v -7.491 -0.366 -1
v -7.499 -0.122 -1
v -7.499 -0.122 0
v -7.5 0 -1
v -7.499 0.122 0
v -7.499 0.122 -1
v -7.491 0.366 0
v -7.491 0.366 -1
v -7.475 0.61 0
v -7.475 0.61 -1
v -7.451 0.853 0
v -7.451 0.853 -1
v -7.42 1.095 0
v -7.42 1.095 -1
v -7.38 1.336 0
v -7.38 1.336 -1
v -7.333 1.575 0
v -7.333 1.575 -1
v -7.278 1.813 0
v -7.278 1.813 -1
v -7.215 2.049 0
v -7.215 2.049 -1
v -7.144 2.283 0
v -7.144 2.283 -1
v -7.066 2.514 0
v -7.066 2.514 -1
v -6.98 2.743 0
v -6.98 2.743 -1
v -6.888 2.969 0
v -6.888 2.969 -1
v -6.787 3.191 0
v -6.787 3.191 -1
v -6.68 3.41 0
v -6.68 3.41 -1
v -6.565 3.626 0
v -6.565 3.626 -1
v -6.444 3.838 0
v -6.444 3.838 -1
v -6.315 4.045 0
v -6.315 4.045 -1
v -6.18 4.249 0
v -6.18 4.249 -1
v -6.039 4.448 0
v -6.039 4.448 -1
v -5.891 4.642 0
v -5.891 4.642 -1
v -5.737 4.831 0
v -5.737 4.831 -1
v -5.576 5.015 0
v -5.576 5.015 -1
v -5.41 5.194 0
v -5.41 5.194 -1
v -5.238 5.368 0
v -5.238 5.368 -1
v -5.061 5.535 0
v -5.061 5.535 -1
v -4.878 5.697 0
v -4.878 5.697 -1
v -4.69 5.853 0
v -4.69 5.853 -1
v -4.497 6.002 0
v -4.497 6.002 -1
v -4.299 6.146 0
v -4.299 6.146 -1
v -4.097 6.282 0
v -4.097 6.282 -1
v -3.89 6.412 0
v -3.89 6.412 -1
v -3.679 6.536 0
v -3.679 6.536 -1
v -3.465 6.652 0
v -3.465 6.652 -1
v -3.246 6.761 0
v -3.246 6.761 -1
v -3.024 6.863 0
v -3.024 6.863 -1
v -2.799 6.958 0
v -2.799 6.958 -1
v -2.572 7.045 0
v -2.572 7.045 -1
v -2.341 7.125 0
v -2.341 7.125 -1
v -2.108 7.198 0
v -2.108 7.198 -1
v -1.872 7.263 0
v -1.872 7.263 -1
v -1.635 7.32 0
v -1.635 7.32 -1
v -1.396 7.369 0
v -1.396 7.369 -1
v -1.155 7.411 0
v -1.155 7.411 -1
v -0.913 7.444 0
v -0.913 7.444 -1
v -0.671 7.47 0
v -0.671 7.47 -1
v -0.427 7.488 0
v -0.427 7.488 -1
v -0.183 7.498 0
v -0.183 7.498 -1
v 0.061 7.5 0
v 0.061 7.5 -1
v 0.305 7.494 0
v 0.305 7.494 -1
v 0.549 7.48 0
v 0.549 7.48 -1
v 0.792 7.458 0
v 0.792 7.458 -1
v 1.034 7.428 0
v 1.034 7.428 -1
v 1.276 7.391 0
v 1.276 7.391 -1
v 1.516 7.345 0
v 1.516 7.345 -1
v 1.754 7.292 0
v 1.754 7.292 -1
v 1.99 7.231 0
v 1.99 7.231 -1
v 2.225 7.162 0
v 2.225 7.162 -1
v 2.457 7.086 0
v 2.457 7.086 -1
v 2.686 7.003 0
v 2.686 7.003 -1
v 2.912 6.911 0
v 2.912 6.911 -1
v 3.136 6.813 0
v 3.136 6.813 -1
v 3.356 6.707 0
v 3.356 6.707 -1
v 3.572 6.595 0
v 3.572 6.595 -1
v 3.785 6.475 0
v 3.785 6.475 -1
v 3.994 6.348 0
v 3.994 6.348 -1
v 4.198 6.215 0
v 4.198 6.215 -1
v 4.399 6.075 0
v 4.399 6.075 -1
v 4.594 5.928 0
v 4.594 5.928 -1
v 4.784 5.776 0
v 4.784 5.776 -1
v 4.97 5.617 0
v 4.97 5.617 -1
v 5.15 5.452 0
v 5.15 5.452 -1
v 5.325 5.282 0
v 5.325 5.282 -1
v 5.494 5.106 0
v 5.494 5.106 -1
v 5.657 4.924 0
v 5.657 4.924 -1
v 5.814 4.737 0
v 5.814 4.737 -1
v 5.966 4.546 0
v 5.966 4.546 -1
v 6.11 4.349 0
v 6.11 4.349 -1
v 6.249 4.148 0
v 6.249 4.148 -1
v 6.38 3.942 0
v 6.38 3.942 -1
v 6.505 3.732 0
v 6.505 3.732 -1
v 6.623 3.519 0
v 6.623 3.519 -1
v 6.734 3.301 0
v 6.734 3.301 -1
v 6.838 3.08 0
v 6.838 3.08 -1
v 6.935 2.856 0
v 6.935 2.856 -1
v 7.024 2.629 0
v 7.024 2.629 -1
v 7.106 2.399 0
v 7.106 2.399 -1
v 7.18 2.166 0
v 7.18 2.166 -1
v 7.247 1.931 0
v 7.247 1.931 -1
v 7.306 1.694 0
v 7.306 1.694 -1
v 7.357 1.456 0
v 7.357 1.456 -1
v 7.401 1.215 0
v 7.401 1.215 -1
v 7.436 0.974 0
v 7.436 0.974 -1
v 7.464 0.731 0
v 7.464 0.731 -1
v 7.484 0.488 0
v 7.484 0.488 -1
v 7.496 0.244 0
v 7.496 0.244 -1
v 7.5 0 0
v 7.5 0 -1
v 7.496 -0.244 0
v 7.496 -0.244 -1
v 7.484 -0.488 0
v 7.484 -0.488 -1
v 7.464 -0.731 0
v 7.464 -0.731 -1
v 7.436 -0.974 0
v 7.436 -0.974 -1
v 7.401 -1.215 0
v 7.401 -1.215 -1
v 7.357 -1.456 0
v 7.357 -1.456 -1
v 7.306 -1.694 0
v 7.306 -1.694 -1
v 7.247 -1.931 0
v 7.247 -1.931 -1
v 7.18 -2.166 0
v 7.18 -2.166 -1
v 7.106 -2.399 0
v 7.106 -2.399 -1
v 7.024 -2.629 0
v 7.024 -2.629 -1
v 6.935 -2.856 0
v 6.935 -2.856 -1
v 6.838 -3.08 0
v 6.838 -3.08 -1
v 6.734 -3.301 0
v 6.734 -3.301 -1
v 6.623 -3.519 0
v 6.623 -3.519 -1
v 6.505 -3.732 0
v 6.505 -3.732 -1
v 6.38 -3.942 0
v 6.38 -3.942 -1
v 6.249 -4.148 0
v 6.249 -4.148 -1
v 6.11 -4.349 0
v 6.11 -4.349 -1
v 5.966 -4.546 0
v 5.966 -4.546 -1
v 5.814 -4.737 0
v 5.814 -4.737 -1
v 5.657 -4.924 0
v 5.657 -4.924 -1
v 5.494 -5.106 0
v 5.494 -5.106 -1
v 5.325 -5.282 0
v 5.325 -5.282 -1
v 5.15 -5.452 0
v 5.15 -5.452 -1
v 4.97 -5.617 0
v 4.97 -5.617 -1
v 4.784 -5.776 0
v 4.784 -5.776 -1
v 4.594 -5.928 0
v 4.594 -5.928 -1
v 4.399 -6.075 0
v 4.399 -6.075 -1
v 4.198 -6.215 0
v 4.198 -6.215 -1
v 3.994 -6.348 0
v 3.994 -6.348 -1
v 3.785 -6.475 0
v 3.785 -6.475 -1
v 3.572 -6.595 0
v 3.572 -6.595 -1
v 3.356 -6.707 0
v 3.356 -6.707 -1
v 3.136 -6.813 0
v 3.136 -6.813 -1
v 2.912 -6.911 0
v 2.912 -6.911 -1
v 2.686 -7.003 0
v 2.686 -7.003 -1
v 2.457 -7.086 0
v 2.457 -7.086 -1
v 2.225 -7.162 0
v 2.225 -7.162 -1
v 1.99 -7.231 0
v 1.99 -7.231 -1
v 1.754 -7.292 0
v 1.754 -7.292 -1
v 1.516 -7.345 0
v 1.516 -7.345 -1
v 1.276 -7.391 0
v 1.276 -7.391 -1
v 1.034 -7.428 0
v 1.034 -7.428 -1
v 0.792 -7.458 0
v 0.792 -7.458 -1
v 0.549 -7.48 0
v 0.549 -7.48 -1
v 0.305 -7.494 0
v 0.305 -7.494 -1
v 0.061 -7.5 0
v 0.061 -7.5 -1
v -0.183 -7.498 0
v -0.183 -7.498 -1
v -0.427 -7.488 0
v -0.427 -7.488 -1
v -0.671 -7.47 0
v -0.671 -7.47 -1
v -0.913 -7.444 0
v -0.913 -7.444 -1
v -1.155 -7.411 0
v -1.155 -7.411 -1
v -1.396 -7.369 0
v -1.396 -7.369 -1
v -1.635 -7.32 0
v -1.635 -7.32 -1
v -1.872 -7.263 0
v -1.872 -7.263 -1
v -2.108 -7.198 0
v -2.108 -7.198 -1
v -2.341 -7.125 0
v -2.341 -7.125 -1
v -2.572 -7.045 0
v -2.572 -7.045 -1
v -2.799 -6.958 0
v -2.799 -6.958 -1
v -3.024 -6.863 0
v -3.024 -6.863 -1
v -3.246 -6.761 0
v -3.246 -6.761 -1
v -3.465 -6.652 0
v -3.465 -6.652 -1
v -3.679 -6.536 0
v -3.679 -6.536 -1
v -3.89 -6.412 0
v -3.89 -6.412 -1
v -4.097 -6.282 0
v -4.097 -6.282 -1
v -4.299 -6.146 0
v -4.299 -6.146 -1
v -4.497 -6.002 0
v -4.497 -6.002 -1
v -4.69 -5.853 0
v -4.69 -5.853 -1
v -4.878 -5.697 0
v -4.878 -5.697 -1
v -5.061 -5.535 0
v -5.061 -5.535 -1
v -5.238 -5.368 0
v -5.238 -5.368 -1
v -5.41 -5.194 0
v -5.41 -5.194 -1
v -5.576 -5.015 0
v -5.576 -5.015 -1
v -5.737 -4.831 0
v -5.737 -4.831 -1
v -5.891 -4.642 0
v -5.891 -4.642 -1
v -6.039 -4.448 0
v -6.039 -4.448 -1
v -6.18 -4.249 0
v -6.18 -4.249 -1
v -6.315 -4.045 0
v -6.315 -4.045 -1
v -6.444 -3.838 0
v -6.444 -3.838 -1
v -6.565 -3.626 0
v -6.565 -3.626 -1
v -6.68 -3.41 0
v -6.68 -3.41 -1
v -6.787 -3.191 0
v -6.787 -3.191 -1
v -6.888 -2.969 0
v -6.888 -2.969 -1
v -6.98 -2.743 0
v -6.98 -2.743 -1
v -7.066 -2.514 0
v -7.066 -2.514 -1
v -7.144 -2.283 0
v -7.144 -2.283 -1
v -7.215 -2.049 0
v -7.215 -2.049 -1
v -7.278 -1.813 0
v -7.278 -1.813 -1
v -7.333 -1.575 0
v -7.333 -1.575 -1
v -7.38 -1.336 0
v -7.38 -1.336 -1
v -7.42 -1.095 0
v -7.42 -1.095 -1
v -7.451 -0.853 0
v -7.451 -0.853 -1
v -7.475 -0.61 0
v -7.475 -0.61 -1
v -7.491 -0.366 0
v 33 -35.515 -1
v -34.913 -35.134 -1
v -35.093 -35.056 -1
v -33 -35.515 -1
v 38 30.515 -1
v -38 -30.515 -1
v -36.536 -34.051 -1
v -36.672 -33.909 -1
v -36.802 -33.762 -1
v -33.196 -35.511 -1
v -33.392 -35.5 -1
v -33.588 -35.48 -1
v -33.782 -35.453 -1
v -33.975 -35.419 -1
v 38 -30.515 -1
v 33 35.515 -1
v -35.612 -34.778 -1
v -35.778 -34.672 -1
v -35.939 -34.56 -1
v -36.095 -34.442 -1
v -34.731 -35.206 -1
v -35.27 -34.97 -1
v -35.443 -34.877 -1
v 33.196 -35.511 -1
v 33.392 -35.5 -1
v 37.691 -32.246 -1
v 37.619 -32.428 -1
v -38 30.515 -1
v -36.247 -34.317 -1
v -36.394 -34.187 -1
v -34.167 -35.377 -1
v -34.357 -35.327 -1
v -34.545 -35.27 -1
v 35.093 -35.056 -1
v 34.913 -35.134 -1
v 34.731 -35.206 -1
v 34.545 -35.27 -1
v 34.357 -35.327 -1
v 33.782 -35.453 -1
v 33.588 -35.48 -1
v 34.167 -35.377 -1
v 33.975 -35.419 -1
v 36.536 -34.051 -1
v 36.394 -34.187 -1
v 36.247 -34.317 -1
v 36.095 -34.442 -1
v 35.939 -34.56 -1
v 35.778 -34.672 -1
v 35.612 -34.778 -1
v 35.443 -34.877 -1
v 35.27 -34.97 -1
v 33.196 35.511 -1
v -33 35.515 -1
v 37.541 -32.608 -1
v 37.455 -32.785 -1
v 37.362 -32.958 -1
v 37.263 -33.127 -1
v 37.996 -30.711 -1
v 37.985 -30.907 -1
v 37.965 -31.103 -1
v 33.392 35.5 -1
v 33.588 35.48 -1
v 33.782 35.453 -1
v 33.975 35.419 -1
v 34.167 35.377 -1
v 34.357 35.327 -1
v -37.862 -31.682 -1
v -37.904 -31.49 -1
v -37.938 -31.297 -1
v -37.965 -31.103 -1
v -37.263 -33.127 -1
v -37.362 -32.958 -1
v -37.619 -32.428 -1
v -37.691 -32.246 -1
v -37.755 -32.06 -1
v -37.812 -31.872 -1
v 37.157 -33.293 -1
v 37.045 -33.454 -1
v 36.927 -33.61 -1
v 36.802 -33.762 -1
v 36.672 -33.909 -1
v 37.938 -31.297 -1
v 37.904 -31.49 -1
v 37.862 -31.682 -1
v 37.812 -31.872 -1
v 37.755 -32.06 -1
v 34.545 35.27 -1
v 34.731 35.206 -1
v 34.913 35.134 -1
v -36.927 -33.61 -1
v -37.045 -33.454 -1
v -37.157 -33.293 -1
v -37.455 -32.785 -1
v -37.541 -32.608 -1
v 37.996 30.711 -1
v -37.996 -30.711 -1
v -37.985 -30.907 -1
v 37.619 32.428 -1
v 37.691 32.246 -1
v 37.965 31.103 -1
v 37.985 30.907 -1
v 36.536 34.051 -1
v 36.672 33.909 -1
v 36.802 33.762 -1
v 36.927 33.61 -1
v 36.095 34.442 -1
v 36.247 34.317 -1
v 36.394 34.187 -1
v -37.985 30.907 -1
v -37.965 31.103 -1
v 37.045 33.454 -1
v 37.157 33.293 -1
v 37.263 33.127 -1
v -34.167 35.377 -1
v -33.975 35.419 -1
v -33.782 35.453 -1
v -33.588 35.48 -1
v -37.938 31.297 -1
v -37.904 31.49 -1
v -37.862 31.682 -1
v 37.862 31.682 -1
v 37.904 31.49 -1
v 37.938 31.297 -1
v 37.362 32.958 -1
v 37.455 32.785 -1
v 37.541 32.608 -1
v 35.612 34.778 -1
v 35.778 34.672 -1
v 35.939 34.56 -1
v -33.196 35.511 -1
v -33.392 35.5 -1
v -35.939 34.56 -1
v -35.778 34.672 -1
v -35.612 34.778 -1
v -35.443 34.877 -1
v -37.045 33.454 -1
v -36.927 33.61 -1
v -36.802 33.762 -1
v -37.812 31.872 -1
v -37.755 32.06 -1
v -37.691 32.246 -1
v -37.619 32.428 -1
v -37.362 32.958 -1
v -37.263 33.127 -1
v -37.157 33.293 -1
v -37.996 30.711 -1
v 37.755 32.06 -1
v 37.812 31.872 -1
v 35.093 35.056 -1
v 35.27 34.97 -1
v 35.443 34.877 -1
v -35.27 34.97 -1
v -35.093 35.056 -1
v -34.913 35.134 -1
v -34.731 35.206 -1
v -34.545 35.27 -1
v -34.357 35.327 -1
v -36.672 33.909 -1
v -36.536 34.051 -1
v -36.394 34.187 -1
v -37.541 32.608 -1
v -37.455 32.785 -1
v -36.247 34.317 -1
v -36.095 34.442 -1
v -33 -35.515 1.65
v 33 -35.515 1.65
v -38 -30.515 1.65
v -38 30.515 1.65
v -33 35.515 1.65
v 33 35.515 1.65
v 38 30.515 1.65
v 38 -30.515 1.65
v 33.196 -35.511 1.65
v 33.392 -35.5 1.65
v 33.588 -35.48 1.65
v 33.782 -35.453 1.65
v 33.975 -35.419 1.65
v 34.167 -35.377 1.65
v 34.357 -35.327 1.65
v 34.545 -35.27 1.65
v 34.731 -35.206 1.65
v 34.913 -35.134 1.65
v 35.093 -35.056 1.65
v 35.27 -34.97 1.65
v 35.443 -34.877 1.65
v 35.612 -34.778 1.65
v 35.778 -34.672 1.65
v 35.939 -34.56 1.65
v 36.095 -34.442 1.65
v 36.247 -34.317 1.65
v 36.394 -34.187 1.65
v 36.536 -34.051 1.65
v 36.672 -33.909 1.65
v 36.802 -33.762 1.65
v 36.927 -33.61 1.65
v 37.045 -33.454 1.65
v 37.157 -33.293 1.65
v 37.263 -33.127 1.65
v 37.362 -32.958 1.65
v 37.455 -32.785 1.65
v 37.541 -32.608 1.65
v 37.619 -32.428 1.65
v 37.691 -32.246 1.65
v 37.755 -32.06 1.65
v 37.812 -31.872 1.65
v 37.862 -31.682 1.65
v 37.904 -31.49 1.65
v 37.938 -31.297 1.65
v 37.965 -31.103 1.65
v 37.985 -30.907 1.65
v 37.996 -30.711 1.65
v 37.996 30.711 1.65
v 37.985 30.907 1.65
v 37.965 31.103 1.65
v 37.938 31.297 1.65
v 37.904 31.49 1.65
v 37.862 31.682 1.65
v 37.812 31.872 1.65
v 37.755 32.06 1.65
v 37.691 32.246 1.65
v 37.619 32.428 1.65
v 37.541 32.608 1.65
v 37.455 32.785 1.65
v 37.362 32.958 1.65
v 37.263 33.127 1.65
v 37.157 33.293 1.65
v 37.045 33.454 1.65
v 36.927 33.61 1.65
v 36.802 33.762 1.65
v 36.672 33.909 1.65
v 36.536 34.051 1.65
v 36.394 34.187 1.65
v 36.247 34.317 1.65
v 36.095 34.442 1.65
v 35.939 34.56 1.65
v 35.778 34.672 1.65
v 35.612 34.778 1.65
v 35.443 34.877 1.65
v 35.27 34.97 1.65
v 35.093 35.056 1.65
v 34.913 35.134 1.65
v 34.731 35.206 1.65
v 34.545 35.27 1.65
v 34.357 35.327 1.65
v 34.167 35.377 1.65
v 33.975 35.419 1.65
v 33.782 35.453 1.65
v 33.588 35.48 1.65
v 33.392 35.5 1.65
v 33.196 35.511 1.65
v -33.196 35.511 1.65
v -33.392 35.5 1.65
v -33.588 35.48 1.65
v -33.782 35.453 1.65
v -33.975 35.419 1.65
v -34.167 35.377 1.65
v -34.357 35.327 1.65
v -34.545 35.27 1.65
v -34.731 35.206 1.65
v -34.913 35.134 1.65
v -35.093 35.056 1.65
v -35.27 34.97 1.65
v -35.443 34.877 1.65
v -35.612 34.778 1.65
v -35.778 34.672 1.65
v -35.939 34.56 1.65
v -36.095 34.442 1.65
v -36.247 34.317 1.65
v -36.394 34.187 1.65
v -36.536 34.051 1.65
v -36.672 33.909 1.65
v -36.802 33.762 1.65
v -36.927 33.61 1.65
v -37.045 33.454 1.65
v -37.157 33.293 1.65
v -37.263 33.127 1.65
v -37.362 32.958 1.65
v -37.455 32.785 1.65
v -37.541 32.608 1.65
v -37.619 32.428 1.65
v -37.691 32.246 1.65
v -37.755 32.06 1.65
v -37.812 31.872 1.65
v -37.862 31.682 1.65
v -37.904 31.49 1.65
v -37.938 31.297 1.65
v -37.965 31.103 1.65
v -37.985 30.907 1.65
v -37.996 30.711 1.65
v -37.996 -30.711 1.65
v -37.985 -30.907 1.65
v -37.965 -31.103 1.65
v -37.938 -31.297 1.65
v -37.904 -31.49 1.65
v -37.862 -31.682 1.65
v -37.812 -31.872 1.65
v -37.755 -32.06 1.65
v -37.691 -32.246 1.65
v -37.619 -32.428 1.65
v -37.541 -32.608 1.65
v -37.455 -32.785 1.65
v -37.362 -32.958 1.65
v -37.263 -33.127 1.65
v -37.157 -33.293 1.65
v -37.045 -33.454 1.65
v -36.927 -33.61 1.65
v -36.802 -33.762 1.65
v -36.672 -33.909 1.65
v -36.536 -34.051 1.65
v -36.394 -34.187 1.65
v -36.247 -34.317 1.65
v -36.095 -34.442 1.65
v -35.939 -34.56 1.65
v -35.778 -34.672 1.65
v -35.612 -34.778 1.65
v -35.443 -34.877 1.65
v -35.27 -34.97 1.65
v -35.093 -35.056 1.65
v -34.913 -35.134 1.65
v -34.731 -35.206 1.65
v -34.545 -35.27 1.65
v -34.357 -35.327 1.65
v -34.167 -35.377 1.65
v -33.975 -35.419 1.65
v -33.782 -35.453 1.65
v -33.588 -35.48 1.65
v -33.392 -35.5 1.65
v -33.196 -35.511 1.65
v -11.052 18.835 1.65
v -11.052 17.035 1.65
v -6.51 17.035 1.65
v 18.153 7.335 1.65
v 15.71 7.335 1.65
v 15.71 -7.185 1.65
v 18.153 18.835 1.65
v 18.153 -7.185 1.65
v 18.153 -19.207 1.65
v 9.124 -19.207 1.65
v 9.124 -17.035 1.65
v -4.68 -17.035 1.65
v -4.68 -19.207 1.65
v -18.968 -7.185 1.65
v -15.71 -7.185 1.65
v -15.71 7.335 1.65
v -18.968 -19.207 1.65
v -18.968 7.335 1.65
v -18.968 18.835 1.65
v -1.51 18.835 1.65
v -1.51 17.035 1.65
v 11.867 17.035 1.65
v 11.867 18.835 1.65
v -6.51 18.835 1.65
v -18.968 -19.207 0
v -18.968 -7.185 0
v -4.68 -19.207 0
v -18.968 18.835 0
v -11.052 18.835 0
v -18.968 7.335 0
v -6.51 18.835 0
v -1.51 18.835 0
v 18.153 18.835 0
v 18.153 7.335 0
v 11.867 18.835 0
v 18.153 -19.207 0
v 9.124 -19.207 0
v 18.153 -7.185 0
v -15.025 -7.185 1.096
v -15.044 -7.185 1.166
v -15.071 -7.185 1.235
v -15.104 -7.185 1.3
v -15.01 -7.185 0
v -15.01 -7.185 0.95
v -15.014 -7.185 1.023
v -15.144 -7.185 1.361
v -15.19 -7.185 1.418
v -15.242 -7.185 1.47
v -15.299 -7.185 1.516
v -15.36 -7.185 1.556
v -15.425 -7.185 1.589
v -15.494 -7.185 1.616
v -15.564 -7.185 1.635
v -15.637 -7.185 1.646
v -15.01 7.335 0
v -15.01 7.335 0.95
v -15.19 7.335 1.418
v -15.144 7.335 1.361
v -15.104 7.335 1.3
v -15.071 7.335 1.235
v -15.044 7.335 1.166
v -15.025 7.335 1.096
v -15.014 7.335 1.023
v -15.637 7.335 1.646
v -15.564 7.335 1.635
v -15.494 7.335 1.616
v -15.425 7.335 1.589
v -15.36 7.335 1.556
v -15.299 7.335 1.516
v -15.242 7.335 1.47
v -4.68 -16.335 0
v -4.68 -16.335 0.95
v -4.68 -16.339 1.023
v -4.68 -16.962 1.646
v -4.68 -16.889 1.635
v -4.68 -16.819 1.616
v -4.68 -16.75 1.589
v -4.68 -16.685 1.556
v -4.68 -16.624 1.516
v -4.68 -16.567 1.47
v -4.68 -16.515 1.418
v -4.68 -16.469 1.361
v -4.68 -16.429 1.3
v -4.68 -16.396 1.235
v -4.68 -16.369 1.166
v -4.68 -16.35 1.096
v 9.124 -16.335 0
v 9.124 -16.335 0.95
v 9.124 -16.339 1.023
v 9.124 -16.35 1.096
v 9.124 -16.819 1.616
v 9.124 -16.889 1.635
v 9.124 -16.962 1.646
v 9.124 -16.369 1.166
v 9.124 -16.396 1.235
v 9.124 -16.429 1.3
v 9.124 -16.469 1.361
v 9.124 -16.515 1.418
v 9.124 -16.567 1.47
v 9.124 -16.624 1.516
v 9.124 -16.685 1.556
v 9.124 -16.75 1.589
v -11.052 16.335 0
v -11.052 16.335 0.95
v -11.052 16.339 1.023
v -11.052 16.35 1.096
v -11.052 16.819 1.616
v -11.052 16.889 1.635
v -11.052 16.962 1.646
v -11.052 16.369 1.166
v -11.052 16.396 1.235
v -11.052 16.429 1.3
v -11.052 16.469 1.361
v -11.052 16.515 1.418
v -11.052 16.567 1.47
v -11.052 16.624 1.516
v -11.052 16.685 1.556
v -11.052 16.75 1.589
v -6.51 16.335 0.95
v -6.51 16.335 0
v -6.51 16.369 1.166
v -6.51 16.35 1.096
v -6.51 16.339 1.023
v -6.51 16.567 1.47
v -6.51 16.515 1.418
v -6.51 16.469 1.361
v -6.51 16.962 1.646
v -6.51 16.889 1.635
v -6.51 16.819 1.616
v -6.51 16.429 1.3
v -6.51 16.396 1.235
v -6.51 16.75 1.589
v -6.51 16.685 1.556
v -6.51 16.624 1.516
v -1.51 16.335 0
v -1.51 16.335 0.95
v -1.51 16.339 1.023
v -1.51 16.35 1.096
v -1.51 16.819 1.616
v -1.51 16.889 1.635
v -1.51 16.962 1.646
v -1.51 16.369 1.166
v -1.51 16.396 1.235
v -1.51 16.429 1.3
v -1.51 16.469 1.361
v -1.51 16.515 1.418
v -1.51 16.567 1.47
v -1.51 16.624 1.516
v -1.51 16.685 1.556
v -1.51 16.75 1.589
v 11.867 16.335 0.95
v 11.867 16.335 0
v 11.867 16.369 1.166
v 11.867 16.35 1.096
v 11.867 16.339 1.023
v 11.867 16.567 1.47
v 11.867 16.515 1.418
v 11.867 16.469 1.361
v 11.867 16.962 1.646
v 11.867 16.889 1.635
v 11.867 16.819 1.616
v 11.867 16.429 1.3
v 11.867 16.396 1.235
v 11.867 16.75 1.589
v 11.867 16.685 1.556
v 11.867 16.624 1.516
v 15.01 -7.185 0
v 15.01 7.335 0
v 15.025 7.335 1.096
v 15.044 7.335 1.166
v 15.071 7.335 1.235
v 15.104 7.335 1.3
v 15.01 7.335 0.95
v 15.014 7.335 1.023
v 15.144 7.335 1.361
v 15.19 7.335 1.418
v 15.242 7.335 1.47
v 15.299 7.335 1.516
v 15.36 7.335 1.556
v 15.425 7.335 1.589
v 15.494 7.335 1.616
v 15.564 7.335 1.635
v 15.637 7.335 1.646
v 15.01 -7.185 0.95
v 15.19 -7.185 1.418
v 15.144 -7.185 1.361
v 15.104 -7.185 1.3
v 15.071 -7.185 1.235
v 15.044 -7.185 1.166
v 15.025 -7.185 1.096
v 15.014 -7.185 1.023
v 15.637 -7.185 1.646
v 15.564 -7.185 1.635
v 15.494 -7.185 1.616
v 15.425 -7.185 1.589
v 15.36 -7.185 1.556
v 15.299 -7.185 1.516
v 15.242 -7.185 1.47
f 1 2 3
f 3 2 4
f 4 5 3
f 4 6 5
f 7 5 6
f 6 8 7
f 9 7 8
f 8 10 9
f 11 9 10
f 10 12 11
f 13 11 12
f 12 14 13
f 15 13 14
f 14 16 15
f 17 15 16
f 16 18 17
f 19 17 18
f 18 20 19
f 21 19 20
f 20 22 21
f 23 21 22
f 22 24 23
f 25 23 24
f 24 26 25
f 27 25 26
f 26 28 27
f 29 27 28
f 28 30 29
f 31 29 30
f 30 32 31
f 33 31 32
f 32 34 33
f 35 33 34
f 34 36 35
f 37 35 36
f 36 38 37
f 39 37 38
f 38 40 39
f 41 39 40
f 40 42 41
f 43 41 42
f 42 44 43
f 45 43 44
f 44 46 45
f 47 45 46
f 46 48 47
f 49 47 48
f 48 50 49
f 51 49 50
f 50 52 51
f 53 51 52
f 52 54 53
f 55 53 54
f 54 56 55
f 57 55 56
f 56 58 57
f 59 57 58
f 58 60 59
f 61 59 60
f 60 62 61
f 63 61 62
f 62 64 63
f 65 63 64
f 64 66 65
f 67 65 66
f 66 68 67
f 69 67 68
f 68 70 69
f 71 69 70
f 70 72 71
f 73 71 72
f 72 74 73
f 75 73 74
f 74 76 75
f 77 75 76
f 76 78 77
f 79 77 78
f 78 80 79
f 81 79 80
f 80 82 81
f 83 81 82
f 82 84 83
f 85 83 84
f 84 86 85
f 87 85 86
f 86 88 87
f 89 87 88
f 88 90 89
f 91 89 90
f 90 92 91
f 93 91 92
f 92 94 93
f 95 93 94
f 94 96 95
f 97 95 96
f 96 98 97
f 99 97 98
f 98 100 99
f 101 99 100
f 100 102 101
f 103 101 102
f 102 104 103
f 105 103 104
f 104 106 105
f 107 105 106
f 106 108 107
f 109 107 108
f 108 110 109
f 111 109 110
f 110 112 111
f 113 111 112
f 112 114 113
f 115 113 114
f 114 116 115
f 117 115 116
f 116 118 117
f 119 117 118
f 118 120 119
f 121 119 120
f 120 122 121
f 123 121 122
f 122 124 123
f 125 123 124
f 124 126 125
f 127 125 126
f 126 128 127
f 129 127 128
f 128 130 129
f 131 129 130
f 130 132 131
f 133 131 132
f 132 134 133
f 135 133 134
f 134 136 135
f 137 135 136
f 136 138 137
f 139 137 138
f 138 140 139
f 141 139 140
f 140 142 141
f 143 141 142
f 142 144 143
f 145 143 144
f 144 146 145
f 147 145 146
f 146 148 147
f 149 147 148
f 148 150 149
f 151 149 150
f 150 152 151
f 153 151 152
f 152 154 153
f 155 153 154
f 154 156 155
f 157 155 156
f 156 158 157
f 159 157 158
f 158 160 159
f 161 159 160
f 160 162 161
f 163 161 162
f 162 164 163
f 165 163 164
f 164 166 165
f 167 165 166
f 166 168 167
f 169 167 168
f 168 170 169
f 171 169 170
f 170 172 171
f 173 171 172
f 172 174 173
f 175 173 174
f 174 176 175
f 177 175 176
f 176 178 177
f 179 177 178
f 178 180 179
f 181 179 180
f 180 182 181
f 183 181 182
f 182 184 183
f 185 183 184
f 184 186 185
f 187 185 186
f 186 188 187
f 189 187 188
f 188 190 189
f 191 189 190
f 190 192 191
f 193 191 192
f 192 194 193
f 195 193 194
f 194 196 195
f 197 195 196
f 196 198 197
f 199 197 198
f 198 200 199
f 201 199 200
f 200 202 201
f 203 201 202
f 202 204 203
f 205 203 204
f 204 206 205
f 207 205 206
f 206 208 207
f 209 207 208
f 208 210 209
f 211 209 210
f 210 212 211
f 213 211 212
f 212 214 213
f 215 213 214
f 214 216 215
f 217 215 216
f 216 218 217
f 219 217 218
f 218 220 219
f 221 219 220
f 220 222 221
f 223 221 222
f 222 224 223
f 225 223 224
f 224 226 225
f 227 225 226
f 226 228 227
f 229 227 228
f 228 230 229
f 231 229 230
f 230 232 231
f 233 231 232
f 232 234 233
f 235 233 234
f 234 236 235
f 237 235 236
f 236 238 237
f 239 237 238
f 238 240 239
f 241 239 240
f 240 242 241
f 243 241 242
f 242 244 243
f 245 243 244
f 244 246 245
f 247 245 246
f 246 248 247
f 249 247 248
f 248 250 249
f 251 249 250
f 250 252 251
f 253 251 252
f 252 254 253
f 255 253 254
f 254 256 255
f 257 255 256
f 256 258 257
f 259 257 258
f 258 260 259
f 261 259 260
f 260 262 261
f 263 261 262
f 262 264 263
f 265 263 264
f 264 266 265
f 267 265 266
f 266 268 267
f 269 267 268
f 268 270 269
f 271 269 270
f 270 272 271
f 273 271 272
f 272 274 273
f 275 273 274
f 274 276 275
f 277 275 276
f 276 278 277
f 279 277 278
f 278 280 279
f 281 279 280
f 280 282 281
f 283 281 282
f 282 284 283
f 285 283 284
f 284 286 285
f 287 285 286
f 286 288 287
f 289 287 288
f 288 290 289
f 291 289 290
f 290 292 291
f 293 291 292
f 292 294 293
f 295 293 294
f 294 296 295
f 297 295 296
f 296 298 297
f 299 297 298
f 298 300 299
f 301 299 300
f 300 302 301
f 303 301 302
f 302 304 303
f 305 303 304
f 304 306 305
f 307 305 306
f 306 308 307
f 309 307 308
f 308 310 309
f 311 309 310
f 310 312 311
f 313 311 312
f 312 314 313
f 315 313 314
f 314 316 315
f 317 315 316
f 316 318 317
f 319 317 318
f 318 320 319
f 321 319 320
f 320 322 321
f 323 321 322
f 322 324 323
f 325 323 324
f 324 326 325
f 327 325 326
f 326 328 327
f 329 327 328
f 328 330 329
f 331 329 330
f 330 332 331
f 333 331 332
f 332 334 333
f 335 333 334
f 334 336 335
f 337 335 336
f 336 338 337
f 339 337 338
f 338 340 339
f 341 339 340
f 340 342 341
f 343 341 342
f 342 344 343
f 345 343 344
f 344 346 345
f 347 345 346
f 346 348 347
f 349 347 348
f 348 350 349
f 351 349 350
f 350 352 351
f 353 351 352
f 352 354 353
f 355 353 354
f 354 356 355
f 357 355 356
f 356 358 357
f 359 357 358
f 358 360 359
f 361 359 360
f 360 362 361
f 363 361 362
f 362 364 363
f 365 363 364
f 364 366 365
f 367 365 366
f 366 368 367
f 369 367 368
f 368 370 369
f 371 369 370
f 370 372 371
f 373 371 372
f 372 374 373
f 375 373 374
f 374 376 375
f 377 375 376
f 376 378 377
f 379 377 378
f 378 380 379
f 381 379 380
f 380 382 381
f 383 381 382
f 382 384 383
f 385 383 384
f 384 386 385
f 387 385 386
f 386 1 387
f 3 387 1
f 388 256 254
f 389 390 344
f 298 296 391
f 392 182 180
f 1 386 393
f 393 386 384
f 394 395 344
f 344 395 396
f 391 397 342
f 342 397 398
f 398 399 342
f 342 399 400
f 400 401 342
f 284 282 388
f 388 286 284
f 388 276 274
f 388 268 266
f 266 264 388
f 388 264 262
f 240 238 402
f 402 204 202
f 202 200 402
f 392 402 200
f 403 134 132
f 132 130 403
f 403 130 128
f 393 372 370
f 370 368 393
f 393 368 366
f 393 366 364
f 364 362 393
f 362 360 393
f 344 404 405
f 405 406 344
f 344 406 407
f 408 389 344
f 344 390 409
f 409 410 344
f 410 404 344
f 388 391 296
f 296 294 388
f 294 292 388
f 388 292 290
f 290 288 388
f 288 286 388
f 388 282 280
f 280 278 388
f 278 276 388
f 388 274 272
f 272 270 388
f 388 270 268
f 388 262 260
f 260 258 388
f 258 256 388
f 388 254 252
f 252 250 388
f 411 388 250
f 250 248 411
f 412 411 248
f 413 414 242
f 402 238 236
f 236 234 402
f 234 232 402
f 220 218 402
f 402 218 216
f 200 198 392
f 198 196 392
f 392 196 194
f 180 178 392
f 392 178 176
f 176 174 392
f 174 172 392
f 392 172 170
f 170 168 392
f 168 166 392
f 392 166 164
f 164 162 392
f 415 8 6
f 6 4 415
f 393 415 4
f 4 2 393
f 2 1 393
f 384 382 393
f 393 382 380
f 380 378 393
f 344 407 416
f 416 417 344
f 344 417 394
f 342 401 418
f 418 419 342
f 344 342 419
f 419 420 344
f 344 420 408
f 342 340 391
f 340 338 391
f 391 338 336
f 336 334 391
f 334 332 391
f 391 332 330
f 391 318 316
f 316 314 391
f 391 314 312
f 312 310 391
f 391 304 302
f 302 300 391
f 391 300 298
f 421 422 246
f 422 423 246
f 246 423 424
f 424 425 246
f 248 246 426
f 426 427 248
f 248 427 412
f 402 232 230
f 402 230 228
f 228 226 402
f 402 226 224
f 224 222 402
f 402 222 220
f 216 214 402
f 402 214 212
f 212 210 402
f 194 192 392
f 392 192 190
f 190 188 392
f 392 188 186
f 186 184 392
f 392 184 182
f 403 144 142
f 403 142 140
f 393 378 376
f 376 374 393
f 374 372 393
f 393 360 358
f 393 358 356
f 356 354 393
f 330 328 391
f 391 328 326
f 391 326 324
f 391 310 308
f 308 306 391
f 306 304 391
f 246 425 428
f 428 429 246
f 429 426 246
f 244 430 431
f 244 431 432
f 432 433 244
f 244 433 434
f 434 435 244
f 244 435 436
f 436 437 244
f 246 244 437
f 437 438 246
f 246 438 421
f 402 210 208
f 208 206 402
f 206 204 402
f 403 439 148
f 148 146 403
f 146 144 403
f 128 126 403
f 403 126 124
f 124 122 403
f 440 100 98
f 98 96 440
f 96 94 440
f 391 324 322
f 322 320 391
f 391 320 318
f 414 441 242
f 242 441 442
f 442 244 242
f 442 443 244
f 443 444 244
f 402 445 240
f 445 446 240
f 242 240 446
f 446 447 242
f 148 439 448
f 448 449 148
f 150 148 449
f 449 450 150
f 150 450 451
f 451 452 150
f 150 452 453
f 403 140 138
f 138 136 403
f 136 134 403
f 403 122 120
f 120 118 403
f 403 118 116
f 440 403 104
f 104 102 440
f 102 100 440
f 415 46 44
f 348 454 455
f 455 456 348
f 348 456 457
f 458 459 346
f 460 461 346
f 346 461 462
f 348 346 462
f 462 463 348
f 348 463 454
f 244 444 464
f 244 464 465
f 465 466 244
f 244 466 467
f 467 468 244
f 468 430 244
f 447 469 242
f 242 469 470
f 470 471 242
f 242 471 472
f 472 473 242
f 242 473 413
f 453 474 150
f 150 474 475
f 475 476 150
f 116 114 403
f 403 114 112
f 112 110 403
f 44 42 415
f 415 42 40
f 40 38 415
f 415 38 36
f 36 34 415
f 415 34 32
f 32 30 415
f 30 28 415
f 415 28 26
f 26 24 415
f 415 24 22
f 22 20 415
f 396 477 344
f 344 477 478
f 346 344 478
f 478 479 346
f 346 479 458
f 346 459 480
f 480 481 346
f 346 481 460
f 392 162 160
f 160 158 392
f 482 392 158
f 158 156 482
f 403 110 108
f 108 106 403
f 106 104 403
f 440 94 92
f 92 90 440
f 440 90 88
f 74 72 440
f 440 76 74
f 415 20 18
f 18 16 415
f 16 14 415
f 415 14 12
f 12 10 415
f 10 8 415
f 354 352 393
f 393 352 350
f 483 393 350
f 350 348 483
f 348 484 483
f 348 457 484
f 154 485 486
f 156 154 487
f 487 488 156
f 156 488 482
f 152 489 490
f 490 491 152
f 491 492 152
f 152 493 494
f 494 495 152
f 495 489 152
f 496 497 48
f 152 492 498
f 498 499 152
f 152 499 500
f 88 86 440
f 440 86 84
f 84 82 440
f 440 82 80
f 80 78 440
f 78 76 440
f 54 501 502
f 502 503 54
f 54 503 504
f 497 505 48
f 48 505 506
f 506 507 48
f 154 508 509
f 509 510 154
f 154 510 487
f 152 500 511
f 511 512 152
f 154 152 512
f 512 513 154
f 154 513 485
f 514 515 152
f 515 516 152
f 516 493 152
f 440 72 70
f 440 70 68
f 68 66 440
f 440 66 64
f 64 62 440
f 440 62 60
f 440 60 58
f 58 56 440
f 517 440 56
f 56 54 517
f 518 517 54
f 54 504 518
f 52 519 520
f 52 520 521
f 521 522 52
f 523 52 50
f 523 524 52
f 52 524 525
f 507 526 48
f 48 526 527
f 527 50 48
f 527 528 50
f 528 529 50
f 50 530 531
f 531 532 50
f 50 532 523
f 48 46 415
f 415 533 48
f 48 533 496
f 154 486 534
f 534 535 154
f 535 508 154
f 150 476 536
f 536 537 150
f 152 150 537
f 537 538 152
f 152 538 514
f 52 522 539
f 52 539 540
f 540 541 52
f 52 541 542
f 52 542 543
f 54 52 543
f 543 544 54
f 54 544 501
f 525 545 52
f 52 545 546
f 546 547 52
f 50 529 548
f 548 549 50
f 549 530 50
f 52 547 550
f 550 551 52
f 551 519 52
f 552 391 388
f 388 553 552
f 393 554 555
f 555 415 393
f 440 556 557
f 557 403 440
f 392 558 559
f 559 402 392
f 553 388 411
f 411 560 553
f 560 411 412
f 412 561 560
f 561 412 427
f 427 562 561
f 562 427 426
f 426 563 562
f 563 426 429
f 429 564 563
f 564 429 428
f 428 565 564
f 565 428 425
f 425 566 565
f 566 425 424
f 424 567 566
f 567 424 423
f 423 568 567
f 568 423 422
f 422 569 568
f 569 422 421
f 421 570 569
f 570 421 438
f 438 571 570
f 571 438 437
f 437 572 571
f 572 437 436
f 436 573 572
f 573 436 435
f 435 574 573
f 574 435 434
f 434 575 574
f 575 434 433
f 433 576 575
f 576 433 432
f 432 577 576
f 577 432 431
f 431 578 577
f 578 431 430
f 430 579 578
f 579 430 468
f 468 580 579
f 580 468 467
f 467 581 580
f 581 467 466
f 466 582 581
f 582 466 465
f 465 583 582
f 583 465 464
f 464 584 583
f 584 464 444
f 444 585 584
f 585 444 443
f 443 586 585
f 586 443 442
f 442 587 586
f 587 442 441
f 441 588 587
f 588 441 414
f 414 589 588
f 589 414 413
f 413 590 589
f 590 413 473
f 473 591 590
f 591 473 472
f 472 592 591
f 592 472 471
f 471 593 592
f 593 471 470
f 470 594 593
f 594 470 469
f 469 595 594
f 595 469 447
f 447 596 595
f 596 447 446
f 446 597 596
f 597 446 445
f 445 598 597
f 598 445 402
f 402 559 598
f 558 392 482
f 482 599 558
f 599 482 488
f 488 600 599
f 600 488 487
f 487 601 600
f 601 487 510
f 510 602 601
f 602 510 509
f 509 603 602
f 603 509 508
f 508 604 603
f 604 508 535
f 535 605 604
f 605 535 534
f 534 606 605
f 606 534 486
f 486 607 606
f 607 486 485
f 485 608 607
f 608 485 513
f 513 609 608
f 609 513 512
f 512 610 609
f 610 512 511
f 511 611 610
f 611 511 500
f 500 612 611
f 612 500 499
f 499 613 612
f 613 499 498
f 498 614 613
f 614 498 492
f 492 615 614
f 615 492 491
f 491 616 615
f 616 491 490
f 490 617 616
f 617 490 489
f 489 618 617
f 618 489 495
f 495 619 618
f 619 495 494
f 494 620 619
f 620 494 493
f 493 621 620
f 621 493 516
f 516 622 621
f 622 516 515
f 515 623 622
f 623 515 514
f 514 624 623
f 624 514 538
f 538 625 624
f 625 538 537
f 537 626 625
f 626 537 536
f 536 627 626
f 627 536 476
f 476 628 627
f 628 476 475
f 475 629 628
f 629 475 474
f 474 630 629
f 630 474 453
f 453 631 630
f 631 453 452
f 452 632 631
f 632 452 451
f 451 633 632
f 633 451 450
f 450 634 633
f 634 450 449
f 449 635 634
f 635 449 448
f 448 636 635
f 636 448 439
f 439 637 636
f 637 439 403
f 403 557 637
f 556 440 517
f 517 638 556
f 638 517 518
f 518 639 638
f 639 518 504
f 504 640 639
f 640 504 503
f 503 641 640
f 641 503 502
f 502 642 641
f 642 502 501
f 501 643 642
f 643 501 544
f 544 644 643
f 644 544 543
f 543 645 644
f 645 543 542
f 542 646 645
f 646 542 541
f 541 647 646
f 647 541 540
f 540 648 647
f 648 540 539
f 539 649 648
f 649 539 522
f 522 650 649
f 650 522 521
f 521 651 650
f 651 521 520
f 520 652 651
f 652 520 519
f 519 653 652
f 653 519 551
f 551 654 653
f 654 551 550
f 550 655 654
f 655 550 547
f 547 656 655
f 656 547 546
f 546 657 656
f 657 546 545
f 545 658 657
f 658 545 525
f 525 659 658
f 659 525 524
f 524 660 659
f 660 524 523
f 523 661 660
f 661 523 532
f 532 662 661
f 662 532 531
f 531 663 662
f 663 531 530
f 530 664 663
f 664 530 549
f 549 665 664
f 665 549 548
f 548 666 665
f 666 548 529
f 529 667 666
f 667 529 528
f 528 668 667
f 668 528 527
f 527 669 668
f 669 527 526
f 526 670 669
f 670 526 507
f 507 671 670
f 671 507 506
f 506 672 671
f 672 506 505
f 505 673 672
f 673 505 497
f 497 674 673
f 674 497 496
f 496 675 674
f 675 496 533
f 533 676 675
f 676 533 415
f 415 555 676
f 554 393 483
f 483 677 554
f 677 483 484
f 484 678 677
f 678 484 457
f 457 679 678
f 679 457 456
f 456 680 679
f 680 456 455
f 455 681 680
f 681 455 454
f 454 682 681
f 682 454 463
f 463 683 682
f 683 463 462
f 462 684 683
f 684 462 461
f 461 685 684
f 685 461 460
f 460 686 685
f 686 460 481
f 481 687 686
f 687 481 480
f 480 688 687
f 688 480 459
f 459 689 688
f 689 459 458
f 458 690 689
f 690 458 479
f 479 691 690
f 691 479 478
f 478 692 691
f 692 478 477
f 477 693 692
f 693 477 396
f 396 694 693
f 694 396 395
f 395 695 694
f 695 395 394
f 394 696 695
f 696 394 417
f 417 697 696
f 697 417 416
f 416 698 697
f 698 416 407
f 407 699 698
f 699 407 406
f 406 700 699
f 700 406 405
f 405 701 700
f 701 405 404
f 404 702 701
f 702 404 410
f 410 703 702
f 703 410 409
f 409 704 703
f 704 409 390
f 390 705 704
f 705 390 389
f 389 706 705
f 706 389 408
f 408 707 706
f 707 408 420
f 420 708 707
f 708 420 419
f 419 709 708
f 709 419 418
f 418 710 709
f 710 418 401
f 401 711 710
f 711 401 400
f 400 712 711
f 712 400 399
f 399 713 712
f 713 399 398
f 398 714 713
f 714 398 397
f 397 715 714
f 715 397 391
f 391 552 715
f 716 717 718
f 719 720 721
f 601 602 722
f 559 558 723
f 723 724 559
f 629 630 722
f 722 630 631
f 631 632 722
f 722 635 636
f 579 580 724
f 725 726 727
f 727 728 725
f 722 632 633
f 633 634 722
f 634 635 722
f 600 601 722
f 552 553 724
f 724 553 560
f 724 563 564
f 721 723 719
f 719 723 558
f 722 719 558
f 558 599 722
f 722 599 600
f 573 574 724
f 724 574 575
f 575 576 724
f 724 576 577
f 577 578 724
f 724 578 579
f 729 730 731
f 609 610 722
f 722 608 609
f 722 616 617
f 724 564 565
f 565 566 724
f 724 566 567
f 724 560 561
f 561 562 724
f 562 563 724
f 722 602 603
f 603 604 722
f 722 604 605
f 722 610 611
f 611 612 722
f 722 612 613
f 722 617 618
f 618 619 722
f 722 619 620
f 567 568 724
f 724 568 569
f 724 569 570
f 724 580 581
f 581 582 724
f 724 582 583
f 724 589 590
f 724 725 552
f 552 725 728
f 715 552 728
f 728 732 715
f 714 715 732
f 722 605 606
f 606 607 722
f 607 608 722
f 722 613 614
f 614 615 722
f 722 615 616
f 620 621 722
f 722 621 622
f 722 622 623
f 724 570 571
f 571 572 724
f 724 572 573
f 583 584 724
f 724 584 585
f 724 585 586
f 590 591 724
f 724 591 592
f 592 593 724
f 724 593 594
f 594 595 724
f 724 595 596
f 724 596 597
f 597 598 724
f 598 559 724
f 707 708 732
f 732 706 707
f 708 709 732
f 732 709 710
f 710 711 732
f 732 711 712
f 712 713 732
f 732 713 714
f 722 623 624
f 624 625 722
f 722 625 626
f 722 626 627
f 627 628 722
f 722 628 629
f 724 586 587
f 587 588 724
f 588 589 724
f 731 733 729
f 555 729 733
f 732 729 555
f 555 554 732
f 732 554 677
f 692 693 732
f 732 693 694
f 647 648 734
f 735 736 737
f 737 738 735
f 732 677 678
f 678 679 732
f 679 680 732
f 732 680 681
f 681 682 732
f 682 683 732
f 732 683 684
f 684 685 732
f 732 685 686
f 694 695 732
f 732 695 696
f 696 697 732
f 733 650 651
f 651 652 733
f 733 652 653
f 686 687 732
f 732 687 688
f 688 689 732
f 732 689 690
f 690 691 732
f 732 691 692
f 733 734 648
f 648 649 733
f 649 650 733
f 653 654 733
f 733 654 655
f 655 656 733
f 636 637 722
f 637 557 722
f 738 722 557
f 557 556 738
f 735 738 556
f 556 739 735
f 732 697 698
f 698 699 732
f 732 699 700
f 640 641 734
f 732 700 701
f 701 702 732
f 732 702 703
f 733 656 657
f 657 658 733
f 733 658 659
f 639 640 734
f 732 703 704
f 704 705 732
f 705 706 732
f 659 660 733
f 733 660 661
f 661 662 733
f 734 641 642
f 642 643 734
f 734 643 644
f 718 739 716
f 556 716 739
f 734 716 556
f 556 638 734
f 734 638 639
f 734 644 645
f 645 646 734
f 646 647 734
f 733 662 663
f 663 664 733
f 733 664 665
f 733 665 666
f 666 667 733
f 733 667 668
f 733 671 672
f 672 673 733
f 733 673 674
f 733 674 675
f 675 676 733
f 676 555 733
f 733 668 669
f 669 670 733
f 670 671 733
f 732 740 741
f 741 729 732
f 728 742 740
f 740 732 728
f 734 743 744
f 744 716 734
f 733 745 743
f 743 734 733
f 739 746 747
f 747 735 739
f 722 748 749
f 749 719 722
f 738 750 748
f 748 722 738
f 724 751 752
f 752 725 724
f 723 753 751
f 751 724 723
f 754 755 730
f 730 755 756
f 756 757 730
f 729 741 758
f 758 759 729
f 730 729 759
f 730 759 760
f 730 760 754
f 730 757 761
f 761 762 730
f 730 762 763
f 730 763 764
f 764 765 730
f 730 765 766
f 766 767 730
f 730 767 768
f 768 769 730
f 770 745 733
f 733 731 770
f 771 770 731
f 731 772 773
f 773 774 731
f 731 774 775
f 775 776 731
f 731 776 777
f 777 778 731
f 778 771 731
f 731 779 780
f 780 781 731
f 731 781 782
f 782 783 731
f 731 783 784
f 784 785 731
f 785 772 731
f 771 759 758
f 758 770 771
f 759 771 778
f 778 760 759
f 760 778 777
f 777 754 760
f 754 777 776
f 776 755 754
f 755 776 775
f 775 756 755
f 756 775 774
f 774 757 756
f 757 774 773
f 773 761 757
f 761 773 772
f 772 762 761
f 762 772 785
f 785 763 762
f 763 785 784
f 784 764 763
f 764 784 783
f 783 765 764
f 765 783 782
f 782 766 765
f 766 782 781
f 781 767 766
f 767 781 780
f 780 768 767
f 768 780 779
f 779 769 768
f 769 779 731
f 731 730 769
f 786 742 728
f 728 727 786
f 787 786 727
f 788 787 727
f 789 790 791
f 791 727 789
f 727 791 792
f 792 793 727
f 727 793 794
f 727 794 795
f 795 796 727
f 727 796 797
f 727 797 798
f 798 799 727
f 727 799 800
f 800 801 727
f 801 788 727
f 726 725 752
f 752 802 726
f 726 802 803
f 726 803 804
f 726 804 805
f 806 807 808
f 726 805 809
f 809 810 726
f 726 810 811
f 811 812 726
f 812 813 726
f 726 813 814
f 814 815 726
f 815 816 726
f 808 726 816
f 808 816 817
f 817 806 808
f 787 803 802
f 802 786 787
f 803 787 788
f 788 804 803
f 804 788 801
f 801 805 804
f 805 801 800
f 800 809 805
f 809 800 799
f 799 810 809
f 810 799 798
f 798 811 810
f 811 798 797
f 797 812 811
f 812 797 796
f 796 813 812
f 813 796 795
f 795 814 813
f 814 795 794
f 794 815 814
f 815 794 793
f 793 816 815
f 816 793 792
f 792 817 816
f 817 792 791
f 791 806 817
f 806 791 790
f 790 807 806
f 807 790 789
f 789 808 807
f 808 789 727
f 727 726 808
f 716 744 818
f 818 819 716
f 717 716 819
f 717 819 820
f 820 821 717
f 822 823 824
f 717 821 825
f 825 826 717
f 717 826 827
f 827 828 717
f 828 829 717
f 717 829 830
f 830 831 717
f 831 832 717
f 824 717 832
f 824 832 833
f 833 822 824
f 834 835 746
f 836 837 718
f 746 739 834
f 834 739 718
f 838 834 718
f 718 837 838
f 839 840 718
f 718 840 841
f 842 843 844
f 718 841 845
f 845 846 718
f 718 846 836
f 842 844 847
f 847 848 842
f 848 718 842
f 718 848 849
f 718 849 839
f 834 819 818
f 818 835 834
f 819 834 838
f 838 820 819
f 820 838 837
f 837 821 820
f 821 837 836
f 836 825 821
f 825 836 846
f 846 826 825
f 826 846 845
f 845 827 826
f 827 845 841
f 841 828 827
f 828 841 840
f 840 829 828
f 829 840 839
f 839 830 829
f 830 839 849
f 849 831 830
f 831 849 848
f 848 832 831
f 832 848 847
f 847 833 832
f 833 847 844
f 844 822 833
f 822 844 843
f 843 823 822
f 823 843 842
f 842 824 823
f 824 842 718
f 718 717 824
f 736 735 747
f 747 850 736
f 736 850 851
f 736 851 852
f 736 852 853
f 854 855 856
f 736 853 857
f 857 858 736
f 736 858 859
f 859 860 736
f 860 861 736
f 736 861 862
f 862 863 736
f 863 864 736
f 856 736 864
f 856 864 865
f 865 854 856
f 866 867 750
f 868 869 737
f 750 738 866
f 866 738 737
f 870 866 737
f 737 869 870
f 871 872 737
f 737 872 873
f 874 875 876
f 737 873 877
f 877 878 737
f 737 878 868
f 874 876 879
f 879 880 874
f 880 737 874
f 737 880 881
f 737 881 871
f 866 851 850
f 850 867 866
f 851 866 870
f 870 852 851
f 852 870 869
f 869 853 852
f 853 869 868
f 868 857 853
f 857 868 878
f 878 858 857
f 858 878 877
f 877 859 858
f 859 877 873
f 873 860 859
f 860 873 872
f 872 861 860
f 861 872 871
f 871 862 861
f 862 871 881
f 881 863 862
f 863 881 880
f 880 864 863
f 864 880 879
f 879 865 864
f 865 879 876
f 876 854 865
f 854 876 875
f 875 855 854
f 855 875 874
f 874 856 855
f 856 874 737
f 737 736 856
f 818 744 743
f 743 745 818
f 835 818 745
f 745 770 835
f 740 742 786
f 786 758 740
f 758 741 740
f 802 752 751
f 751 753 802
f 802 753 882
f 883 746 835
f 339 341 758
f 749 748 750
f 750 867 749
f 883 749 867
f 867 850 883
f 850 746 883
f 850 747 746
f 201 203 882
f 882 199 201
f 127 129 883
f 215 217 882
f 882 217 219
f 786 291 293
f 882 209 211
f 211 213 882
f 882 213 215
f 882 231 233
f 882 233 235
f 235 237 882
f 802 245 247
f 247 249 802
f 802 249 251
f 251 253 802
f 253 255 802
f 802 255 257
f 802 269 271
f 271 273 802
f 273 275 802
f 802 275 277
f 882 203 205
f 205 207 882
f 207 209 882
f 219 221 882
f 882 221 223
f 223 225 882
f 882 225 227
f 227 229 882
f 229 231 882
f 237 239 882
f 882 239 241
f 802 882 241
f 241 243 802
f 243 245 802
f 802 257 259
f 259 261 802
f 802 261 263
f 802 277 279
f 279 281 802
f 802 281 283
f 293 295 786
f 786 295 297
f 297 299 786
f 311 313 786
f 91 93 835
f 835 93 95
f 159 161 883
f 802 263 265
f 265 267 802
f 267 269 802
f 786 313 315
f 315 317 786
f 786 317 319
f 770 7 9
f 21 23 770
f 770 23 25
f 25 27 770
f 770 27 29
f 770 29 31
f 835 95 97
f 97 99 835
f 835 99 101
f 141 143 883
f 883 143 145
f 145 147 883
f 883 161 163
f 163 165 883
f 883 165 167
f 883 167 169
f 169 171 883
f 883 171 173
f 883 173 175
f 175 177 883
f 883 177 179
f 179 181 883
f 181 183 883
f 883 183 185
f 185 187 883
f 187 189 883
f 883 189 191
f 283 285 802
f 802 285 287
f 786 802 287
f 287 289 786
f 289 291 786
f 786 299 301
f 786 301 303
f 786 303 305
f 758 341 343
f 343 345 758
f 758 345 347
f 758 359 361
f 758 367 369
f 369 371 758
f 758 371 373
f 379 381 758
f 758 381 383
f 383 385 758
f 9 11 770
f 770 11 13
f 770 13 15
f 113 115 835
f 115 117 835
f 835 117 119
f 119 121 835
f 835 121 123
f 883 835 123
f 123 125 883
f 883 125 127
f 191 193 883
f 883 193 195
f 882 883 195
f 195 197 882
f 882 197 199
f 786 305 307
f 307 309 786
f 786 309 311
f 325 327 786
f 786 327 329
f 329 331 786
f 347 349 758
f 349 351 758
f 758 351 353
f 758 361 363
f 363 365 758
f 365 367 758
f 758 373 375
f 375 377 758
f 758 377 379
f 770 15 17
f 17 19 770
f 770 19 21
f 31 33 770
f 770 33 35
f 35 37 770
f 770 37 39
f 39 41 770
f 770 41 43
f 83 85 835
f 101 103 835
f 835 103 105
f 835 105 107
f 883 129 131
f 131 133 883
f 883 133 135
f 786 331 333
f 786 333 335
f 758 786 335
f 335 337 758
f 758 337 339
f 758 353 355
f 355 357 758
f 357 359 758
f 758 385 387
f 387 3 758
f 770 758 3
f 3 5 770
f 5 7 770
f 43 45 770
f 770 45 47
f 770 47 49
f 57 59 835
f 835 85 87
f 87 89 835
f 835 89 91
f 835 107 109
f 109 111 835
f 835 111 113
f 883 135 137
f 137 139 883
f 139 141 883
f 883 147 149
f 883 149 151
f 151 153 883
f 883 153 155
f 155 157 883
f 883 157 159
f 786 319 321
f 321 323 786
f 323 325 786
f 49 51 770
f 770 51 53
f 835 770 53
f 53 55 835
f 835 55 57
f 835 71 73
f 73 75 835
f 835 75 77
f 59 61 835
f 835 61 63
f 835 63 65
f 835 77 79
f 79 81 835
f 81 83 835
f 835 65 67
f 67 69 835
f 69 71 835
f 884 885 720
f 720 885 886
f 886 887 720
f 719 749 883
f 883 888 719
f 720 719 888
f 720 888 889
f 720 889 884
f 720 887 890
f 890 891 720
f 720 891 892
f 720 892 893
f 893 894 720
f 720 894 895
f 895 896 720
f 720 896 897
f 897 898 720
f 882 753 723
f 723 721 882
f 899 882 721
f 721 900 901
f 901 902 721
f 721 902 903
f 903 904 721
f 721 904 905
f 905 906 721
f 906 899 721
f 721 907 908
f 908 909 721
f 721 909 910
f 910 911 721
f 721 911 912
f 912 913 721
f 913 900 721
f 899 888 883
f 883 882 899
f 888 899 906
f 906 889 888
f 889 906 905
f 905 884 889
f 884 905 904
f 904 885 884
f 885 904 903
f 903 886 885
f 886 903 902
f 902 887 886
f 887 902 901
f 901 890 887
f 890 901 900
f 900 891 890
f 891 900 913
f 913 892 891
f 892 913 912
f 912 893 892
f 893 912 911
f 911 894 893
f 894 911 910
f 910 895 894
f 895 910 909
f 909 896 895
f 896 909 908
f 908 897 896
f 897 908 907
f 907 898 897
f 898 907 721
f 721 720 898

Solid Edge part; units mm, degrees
sketch "Sketch1" plane through (0, 0, 0) normal (0, 0, 1) x (1, 0, 0)
  line L0 (-15.01, -16.335) -> (-15.01, 16.335)
  line L1 (-15.01, 16.335) -> (15.01, 16.335)
  line L2 (15.01, 16.335) -> (15.01, -16.335)
  line L3 (15.01, -16.335) -> (-15.01, -16.335)
  line L4 (-38, -35.515) -> (-38, 35.515)
  line L5 (-38, 35.515) -> (38, 35.515)
  line L6 (38, 35.515) -> (38, -35.515)
  line L7 (38, -35.515) -> (-38, -35.515)
  dimension "D1" = 32.67
  dimension "D2" = 30.02
  dimension "D3" = 71.03
  dimension "D4" = 76
extrude "Protrusion1" add sketch "Sketch1" along normal blind 1.65
sketch "Sketch2" plane through (0, 0, 0) normal (0, 0, 1) x (1, 0, 0)
  line L0 (38, -35.515) -> (-38, -35.515)
  line L1 (-38, -35.515) -> (-38, 35.515)
  line L2 (-38, 35.515) -> (38, 35.515)
  line L3 (38, 35.515) -> (38, -35.515)
extrude "ExtrudedProtrusion_2" add sketch "Sketch2" against normal blind 1
sketch "Sketch3" plane through (0, 0, 1.65) normal (0, 0, 1) x (1, 0, 0)
  line L0 (-18.968, -7.185) -> (-4.68, -7.185)
  line L1 (-4.68, -7.185) -> (-4.68, -19.2068)
  line L2 (-4.68, -19.2068) -> (-18.968, -19.2068)
  line L3 (-18.968, -19.2068) -> (-18.968, -7.185)
  line L4 (-11.052, 7.335) -> (-11.052, 18.835)
  line L5 (-11.052, 18.835) -> (-18.968, 18.835)
  line L6 (-18.968, 18.835) -> (-18.968, 7.335)
  line L7 (-18.968, 7.335) -> (-11.052, 7.335)
  line L8 (-1.51, 13.835) -> (-6.51, 13.835)
  line L9 (-6.51, 13.835) -> (-6.51, 18.835)
  line L10 (-6.51, 18.835) -> (-1.51, 18.835)
  line L11 (-1.51, 18.835) -> (-1.51, 13.835)
  line L12 (11.8674, 7.335) -> (18.1526, 7.335)
  line L13 (18.1526, 7.335) -> (18.1526, 18.835)
  line L14 (18.1526, 18.835) -> (11.8674, 18.835)
  line L15 (11.8674, 18.835) -> (11.8674, 7.335)
  line L16 (9.1239, -19.2068) -> (9.1239, -7.185)
  line L17 (9.1239, -7.185) -> (18.1526, -7.185)
  line L18 (18.1526, -7.185) -> (18.1526, -19.2068)
  line L19 (18.1526, -19.2068) -> (9.1239, -19.2068)
  dimension "D1" = 5
  dimension "D2" = 11
  dimension "D3" = 9
  dimension "D4" = 10.33
  dimension "D5" = 9.15
extrude "Cutout1" cut sketch "Sketch3" against normal up to vertex (1.65 mm away)
fillet "Round_1" radius 0.7 5 edges at (-8.781, 16.335, 1.65) (5.1787, 16.335, 1.65) (15.01, 0.075, 1.65) (2.2219, -16.335, 1.65) (-15.01, 0.075, 1.65)
sketch "Sketch4" plane through (-0.4077, -0.1859, 0) normal (0, 0, 1) x (1, 0, 0)
  circle A0 centre (0.4077, 0.1859) radius 7.5
extrude "Cutout2" cut sketch "Sketch4" against normal up to next
fillet "Round_2" radius 5 4 edges at (38, -35.515, 0.325) (-38, -35.515, 0.325) (-38, 35.515, 0.325) (38, 35.515, 0.325)
